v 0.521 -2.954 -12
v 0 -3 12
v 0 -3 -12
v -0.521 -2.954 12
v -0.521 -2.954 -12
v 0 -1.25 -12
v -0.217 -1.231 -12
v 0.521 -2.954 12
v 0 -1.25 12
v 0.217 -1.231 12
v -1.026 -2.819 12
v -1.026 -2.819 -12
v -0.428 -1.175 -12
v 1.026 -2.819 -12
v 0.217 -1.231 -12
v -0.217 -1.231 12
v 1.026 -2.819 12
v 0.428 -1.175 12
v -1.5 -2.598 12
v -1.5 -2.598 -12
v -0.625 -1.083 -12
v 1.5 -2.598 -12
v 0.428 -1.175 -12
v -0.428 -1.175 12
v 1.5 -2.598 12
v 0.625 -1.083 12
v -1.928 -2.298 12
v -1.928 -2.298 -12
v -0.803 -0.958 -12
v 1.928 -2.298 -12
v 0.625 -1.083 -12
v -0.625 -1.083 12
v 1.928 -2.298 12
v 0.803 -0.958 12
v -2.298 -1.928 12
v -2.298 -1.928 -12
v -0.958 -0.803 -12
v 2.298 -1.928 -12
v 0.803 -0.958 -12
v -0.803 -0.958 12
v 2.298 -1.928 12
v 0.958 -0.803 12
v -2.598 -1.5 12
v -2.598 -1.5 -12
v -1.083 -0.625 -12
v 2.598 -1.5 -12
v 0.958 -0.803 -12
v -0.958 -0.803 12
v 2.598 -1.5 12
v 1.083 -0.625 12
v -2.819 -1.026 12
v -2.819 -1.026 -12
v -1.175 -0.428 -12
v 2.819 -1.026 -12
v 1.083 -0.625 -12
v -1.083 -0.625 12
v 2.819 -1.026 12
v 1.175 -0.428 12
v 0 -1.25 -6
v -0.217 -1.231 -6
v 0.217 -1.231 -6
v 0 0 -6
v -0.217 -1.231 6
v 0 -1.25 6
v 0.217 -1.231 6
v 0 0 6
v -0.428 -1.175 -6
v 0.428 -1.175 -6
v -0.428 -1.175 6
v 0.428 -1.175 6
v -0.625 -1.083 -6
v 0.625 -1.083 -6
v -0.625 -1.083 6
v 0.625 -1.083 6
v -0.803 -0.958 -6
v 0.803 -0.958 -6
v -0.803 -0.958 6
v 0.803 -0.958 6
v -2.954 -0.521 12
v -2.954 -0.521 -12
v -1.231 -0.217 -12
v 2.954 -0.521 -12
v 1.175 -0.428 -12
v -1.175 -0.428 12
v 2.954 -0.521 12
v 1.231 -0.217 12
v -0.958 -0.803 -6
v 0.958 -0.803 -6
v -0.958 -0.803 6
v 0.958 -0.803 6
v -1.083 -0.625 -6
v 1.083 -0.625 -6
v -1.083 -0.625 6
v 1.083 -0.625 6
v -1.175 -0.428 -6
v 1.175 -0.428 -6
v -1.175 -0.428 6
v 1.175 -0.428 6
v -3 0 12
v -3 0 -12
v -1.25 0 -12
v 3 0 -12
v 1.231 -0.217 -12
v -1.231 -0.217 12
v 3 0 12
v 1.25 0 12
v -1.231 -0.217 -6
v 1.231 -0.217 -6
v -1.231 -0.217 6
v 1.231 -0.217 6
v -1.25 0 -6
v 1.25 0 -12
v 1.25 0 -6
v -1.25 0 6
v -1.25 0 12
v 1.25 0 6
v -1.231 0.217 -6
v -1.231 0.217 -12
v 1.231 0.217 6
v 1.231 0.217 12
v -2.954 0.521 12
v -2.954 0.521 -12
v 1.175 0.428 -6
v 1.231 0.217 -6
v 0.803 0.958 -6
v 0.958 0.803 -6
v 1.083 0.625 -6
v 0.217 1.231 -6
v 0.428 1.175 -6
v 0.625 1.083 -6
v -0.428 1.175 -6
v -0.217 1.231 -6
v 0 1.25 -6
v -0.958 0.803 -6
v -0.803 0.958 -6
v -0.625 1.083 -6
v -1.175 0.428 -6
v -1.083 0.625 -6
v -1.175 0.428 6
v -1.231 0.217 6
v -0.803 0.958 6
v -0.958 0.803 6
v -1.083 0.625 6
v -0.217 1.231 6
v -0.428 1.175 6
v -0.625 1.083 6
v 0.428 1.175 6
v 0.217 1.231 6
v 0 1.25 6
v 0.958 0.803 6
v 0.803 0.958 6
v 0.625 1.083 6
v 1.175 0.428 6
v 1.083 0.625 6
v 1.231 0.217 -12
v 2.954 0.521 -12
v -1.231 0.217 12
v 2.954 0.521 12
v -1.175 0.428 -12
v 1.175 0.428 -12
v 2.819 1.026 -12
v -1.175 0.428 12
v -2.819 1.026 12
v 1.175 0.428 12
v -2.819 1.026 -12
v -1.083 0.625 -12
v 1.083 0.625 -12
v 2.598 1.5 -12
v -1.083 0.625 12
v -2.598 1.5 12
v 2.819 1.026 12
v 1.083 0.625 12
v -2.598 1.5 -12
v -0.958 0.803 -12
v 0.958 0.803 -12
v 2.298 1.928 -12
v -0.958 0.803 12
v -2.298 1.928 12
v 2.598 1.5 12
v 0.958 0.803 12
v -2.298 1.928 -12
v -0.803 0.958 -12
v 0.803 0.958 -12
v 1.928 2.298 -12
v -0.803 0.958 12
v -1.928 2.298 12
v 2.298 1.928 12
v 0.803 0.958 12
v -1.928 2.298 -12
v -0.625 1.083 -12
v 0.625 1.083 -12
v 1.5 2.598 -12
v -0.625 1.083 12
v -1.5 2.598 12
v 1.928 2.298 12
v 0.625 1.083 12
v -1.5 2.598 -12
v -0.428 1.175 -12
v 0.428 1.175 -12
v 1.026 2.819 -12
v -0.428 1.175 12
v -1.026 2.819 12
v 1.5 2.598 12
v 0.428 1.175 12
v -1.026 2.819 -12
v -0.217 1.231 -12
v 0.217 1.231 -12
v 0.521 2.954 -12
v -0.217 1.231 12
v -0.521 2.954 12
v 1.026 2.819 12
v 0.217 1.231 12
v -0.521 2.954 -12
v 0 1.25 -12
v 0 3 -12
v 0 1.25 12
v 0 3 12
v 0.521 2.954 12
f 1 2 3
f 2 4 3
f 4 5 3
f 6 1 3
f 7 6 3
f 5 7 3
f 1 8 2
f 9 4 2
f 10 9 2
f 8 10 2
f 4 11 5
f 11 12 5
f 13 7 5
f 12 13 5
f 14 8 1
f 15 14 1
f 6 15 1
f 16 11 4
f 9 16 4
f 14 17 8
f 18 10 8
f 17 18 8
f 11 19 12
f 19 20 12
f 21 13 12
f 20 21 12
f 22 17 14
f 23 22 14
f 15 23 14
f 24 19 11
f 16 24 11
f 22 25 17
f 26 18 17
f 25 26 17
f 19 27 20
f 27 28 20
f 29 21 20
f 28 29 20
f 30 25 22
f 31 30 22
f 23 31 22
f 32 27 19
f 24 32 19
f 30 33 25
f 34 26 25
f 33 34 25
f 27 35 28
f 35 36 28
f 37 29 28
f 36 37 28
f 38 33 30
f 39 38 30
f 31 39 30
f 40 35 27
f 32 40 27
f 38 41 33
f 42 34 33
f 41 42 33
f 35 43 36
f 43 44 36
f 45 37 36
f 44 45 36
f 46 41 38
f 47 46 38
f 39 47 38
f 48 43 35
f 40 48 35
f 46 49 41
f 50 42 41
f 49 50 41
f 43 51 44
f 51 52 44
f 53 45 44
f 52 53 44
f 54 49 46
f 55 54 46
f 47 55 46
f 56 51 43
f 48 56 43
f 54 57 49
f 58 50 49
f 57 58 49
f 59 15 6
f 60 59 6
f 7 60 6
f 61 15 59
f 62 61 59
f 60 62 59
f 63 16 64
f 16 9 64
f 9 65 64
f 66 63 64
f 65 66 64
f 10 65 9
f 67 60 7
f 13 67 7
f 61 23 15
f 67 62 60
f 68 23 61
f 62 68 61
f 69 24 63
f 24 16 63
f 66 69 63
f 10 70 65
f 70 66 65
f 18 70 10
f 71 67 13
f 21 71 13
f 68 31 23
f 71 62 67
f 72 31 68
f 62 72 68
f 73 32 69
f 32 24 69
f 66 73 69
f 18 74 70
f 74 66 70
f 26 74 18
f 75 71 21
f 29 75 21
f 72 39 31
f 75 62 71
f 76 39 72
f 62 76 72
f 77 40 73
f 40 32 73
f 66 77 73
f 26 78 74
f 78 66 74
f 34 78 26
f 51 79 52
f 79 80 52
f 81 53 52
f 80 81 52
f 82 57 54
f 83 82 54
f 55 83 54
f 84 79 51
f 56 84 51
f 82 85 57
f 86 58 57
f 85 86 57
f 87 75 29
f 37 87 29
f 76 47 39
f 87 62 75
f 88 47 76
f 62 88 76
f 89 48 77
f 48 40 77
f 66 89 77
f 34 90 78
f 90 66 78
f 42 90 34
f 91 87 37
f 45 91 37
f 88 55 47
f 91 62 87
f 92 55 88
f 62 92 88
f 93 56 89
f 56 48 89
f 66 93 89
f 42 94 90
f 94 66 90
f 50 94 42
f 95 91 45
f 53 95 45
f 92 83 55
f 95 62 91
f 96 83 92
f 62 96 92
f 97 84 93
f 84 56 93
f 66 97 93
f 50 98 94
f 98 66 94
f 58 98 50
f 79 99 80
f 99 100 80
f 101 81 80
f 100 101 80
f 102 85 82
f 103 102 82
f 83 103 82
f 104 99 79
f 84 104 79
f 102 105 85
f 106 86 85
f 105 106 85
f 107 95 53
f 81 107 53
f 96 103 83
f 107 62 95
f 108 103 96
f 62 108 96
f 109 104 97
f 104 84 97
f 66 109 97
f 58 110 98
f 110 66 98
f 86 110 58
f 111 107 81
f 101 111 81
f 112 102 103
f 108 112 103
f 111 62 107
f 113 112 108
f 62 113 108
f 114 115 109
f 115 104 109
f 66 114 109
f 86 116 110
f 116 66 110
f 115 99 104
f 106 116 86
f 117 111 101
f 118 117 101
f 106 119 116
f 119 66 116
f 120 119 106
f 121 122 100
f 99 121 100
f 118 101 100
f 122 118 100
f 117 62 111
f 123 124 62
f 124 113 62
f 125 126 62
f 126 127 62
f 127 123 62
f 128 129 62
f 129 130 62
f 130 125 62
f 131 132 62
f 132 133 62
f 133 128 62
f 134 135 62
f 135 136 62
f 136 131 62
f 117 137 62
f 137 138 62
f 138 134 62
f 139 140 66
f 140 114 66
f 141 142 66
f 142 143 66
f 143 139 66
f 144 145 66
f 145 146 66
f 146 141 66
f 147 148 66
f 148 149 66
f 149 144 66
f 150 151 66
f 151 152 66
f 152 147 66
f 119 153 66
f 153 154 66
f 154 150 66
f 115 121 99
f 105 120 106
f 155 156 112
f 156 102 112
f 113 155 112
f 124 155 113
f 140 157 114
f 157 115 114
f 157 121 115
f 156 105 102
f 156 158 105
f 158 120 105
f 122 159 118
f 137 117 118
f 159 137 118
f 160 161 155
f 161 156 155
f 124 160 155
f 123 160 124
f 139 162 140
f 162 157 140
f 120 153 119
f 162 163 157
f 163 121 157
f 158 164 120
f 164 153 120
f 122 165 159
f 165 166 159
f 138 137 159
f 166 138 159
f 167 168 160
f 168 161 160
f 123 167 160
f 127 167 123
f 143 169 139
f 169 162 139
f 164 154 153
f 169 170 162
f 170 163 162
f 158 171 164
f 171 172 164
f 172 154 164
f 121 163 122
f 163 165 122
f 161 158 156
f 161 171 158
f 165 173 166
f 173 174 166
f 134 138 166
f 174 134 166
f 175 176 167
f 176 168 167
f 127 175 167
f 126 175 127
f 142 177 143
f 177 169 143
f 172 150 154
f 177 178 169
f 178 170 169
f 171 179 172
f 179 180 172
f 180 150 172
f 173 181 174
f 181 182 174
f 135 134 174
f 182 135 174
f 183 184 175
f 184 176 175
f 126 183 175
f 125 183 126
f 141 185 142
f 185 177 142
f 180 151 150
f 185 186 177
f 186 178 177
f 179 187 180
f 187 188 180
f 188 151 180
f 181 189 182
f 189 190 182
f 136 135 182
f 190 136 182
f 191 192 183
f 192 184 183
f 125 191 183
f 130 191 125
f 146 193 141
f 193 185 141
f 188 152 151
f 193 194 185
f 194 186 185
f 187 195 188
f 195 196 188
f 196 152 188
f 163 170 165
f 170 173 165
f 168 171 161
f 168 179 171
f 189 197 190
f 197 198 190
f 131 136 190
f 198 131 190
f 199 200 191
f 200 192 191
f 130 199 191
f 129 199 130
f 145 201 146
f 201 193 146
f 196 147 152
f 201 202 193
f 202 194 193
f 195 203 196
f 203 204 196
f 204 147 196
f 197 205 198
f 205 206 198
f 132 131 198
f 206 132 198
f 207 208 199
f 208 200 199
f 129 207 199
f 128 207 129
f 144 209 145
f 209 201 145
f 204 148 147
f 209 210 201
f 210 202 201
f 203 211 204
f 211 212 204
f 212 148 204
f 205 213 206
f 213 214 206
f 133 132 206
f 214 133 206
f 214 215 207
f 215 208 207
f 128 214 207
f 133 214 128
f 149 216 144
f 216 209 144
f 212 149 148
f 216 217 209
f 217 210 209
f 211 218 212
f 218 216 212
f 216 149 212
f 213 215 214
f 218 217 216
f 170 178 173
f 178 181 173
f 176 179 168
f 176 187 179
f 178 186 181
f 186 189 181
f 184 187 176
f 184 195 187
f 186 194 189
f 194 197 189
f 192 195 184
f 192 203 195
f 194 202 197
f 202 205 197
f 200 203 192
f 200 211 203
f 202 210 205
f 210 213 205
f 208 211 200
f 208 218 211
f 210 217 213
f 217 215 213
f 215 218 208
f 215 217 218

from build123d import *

# Parameters (mm, degrees)
SKETCH_1_R          = 3
EXTRUDE_1_DEPTH     = 12
SKETCH_2_R          = 1.25
CUT_EXTRUDE_1_DEPTH = 6


with BuildPart() as part:
    # ｽｹｯﾁ1 → ﾎﾞｽ - 押し出し1 (new, symmetric)
    with BuildSketch(Plane.XY):
        Circle(SKETCH_1_R)
    extrude(amount=EXTRUDE_1_DEPTH, both=True)

    # ｽｹｯﾁ2 → ｶｯﾄ - 押し出し1 (cut)
    with BuildSketch(Plane.XY.offset(12)):
        Circle(SKETCH_2_R)
    cut_extrude_1 = extrude(amount=-CUT_EXTRUDE_1_DEPTH, mode=Mode.SUBTRACT)

    # ﾐﾗｰ1: ｶｯﾄ - 押し出し1 across plane
    add(cut_extrude_1.mirror(Plane.XY), mode=Mode.SUBTRACT)


solid = part.part
